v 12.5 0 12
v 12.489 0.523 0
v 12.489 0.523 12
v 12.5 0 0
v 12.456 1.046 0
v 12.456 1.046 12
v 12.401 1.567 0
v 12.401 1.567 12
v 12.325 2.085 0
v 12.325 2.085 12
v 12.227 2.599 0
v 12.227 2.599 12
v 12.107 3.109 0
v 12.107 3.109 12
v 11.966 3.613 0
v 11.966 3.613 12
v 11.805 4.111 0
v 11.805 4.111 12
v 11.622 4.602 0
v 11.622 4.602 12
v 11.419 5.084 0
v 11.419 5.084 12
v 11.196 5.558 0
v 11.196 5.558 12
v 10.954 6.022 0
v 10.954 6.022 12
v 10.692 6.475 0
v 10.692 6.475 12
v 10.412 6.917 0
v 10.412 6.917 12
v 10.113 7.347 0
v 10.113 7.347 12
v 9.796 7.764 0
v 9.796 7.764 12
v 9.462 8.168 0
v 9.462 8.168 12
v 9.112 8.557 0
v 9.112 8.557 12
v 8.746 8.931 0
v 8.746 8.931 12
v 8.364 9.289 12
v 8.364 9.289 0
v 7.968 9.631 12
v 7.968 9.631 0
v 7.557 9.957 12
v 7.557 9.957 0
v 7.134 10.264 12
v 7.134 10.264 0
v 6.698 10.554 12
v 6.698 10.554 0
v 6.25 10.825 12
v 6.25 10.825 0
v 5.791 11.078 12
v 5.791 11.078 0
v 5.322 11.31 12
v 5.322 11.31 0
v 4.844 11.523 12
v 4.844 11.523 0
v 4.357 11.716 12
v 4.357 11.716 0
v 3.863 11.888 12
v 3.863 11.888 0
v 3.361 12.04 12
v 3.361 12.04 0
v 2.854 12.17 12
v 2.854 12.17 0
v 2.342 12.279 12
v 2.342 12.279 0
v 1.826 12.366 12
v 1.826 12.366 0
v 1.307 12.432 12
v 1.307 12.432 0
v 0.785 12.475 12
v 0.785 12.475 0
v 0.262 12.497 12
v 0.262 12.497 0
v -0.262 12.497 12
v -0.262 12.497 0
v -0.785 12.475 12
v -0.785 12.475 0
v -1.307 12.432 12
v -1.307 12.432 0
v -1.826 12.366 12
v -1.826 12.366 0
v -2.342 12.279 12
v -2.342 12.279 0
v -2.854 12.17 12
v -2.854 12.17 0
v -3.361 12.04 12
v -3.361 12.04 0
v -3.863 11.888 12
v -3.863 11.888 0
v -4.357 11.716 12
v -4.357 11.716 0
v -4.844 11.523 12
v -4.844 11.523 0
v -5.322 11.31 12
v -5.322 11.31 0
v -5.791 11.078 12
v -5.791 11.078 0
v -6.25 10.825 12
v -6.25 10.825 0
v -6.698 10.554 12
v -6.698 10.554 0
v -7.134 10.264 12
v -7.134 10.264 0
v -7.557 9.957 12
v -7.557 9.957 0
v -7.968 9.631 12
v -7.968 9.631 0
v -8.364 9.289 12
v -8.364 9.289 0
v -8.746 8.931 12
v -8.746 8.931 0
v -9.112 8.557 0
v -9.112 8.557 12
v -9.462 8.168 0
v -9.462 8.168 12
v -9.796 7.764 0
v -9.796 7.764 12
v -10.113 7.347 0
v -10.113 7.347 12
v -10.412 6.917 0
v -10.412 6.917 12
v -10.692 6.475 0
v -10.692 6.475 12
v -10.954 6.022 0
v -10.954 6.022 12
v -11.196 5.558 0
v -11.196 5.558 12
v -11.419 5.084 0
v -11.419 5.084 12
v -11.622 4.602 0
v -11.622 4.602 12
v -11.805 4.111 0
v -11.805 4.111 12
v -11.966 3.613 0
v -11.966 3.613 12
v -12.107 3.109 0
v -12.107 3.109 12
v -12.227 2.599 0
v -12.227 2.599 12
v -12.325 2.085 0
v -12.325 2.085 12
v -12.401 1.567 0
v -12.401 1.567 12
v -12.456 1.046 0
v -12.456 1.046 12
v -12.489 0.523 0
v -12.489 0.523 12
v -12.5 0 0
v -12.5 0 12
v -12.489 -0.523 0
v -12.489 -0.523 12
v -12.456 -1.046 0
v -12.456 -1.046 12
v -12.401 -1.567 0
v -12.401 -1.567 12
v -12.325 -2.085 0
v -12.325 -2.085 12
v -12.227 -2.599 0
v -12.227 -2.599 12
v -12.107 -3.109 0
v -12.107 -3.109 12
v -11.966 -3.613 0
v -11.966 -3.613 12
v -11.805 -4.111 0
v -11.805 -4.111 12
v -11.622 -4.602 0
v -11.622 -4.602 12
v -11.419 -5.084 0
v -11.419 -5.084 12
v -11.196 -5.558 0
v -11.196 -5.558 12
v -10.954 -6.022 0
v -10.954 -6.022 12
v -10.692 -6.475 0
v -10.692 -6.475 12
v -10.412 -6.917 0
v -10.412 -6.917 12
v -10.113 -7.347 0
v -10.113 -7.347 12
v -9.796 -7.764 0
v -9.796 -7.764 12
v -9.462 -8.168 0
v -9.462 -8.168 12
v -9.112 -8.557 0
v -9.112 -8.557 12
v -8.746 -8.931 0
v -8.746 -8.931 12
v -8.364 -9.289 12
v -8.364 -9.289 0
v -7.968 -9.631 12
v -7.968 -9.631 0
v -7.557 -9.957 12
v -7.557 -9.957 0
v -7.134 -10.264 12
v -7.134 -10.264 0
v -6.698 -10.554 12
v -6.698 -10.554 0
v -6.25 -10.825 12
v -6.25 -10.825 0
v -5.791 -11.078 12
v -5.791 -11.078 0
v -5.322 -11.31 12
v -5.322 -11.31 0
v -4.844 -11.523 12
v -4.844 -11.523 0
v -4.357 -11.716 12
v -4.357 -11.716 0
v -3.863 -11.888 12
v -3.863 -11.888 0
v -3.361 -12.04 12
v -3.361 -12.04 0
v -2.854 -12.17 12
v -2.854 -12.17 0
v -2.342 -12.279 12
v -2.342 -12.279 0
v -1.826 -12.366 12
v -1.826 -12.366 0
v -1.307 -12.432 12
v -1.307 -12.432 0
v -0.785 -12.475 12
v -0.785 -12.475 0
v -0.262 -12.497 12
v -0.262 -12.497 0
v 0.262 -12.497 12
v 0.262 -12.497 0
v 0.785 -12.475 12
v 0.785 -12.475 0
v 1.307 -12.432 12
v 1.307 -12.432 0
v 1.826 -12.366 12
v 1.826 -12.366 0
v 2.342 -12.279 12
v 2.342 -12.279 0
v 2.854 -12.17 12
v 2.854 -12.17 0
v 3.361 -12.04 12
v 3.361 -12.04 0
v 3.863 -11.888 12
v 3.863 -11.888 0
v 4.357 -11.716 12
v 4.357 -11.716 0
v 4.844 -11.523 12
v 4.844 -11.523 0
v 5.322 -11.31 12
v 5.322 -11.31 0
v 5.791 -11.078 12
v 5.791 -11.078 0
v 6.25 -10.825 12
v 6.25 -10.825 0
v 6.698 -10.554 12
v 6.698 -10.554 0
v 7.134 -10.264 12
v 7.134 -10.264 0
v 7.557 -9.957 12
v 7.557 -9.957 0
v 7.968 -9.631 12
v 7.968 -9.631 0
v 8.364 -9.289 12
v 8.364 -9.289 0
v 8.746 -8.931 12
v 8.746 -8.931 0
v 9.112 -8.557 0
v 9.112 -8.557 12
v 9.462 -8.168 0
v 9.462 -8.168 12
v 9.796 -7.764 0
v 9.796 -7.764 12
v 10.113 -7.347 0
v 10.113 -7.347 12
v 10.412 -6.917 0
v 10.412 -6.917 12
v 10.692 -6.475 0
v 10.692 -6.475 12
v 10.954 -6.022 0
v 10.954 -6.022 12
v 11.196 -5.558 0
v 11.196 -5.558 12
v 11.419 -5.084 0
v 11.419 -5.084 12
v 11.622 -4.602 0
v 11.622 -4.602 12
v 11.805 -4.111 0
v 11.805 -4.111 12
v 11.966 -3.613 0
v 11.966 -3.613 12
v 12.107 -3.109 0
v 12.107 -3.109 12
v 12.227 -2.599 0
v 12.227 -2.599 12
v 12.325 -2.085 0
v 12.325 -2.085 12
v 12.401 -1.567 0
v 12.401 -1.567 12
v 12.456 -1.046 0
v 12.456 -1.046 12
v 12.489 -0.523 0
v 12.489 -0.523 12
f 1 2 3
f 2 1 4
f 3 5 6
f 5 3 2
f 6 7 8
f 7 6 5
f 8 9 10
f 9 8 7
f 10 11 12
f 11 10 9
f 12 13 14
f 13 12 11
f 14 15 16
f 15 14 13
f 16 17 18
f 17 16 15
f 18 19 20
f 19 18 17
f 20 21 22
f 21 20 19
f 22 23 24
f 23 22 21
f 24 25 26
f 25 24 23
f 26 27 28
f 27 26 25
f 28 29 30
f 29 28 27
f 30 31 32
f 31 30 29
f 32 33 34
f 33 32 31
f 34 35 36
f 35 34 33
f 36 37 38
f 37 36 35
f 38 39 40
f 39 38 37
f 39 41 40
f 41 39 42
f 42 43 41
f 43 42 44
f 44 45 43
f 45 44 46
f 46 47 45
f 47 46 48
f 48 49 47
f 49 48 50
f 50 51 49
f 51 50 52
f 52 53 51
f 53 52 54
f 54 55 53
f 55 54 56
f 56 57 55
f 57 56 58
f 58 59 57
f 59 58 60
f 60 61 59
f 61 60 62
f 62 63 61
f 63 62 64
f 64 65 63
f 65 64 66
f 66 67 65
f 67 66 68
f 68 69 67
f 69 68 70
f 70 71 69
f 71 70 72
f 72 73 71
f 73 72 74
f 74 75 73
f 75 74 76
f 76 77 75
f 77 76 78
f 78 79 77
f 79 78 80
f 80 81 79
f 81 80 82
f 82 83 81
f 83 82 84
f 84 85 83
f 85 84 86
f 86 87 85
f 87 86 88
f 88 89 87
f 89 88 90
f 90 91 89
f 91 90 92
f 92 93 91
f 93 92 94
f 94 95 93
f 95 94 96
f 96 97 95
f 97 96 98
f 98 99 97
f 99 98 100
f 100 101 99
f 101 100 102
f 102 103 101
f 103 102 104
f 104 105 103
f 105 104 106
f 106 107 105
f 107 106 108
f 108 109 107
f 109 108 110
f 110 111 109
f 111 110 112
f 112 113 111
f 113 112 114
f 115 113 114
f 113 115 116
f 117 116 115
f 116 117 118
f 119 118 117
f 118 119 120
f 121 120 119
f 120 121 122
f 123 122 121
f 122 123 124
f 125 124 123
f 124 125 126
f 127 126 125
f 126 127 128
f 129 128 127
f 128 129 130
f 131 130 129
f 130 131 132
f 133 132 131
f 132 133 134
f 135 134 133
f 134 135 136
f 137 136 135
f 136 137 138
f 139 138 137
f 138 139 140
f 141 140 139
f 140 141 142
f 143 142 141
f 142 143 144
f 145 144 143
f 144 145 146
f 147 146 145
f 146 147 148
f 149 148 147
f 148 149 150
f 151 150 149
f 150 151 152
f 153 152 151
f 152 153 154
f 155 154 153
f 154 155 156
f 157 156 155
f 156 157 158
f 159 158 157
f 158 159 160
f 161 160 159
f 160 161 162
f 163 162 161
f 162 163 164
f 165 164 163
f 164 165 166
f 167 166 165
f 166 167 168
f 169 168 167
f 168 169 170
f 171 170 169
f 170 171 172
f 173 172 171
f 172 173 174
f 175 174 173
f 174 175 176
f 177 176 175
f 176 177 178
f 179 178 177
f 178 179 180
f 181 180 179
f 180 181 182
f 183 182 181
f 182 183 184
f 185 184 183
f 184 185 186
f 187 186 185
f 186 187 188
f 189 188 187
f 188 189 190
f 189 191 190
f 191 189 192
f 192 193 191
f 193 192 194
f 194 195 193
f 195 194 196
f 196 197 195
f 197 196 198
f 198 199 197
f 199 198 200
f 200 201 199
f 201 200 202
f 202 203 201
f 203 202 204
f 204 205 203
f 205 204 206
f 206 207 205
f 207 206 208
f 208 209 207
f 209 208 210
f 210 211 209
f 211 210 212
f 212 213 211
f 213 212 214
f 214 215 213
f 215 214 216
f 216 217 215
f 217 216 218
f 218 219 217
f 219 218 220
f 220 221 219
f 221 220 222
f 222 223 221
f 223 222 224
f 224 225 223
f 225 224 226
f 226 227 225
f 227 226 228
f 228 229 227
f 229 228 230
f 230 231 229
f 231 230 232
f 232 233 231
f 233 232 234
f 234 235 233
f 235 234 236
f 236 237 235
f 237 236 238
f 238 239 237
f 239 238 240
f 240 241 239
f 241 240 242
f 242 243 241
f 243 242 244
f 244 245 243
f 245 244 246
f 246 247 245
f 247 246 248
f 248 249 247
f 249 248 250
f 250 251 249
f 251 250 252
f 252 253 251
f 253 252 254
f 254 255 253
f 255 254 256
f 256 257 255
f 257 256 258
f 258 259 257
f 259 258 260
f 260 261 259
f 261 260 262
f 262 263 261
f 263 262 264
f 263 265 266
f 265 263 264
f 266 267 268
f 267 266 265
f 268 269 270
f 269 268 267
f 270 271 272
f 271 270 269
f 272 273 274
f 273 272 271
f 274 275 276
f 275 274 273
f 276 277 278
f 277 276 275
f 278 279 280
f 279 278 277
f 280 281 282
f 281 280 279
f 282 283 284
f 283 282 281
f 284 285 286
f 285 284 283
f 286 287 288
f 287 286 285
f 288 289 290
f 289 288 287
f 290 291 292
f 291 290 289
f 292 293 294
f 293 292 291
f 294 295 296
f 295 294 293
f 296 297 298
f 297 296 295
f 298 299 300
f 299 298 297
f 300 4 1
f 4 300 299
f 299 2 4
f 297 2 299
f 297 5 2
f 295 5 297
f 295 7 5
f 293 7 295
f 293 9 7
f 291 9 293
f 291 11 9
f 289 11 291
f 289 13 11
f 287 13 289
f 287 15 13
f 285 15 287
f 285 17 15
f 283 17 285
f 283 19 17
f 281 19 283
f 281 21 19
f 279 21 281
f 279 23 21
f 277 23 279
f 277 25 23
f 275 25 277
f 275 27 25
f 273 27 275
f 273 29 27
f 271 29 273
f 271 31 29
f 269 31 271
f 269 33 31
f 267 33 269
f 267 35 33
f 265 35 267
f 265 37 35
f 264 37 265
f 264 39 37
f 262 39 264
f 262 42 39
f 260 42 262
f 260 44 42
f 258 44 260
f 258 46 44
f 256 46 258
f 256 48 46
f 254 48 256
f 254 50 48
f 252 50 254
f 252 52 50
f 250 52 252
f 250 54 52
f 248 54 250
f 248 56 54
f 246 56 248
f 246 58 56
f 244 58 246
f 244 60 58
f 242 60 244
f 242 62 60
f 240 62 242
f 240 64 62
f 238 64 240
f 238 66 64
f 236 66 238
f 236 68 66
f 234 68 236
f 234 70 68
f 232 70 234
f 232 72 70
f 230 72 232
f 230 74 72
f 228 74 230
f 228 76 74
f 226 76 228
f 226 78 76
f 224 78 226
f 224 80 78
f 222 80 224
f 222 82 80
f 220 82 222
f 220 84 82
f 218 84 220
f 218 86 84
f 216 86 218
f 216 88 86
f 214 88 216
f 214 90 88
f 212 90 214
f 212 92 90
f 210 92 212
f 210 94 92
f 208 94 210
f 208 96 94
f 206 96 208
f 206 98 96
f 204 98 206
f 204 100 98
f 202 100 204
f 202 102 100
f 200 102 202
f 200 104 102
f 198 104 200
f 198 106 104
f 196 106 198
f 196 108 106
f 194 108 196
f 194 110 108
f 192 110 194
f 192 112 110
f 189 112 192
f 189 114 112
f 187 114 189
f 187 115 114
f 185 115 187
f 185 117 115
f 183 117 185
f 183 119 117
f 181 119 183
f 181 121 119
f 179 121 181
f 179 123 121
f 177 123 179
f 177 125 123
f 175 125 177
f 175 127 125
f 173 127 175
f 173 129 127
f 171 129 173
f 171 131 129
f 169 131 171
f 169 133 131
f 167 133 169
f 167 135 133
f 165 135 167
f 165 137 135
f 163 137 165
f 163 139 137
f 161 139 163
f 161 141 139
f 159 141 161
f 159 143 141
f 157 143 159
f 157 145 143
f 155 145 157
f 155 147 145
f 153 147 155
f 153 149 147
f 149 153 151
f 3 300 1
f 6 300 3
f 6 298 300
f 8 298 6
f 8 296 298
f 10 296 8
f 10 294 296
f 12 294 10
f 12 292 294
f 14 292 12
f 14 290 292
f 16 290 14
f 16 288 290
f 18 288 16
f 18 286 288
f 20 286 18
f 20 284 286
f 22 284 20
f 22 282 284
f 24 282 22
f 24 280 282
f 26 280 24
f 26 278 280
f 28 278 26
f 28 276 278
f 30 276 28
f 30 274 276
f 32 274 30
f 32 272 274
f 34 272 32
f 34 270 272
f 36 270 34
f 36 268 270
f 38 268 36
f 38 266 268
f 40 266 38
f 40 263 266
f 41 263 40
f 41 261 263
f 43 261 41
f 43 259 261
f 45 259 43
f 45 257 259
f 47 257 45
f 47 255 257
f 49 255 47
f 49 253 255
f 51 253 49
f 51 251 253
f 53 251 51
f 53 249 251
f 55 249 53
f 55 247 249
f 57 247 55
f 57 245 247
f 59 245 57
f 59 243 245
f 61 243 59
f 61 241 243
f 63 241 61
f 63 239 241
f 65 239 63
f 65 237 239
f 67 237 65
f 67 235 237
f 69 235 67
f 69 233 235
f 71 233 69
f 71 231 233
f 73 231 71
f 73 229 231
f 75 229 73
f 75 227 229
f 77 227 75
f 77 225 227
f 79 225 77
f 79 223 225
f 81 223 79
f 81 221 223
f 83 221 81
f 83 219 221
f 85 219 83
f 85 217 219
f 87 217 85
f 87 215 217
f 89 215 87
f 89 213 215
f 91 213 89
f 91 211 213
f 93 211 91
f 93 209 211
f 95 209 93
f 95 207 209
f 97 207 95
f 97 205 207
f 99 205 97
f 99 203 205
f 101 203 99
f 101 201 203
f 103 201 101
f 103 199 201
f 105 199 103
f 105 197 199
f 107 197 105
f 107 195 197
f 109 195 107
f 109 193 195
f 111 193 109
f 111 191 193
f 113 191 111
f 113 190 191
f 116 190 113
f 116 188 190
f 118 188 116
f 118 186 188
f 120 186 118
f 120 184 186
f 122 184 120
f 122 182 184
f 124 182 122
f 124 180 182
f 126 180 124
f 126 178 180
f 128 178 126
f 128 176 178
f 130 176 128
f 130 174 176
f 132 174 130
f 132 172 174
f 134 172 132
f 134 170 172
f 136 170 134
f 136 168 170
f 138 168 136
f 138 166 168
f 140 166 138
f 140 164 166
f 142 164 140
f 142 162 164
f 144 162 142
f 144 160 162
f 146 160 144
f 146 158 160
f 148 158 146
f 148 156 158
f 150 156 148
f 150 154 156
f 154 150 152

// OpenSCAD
$fn=150;

height = 12;

diameterOutside = 25;




cylinder(h=height, d=diameterOutside);





//END
